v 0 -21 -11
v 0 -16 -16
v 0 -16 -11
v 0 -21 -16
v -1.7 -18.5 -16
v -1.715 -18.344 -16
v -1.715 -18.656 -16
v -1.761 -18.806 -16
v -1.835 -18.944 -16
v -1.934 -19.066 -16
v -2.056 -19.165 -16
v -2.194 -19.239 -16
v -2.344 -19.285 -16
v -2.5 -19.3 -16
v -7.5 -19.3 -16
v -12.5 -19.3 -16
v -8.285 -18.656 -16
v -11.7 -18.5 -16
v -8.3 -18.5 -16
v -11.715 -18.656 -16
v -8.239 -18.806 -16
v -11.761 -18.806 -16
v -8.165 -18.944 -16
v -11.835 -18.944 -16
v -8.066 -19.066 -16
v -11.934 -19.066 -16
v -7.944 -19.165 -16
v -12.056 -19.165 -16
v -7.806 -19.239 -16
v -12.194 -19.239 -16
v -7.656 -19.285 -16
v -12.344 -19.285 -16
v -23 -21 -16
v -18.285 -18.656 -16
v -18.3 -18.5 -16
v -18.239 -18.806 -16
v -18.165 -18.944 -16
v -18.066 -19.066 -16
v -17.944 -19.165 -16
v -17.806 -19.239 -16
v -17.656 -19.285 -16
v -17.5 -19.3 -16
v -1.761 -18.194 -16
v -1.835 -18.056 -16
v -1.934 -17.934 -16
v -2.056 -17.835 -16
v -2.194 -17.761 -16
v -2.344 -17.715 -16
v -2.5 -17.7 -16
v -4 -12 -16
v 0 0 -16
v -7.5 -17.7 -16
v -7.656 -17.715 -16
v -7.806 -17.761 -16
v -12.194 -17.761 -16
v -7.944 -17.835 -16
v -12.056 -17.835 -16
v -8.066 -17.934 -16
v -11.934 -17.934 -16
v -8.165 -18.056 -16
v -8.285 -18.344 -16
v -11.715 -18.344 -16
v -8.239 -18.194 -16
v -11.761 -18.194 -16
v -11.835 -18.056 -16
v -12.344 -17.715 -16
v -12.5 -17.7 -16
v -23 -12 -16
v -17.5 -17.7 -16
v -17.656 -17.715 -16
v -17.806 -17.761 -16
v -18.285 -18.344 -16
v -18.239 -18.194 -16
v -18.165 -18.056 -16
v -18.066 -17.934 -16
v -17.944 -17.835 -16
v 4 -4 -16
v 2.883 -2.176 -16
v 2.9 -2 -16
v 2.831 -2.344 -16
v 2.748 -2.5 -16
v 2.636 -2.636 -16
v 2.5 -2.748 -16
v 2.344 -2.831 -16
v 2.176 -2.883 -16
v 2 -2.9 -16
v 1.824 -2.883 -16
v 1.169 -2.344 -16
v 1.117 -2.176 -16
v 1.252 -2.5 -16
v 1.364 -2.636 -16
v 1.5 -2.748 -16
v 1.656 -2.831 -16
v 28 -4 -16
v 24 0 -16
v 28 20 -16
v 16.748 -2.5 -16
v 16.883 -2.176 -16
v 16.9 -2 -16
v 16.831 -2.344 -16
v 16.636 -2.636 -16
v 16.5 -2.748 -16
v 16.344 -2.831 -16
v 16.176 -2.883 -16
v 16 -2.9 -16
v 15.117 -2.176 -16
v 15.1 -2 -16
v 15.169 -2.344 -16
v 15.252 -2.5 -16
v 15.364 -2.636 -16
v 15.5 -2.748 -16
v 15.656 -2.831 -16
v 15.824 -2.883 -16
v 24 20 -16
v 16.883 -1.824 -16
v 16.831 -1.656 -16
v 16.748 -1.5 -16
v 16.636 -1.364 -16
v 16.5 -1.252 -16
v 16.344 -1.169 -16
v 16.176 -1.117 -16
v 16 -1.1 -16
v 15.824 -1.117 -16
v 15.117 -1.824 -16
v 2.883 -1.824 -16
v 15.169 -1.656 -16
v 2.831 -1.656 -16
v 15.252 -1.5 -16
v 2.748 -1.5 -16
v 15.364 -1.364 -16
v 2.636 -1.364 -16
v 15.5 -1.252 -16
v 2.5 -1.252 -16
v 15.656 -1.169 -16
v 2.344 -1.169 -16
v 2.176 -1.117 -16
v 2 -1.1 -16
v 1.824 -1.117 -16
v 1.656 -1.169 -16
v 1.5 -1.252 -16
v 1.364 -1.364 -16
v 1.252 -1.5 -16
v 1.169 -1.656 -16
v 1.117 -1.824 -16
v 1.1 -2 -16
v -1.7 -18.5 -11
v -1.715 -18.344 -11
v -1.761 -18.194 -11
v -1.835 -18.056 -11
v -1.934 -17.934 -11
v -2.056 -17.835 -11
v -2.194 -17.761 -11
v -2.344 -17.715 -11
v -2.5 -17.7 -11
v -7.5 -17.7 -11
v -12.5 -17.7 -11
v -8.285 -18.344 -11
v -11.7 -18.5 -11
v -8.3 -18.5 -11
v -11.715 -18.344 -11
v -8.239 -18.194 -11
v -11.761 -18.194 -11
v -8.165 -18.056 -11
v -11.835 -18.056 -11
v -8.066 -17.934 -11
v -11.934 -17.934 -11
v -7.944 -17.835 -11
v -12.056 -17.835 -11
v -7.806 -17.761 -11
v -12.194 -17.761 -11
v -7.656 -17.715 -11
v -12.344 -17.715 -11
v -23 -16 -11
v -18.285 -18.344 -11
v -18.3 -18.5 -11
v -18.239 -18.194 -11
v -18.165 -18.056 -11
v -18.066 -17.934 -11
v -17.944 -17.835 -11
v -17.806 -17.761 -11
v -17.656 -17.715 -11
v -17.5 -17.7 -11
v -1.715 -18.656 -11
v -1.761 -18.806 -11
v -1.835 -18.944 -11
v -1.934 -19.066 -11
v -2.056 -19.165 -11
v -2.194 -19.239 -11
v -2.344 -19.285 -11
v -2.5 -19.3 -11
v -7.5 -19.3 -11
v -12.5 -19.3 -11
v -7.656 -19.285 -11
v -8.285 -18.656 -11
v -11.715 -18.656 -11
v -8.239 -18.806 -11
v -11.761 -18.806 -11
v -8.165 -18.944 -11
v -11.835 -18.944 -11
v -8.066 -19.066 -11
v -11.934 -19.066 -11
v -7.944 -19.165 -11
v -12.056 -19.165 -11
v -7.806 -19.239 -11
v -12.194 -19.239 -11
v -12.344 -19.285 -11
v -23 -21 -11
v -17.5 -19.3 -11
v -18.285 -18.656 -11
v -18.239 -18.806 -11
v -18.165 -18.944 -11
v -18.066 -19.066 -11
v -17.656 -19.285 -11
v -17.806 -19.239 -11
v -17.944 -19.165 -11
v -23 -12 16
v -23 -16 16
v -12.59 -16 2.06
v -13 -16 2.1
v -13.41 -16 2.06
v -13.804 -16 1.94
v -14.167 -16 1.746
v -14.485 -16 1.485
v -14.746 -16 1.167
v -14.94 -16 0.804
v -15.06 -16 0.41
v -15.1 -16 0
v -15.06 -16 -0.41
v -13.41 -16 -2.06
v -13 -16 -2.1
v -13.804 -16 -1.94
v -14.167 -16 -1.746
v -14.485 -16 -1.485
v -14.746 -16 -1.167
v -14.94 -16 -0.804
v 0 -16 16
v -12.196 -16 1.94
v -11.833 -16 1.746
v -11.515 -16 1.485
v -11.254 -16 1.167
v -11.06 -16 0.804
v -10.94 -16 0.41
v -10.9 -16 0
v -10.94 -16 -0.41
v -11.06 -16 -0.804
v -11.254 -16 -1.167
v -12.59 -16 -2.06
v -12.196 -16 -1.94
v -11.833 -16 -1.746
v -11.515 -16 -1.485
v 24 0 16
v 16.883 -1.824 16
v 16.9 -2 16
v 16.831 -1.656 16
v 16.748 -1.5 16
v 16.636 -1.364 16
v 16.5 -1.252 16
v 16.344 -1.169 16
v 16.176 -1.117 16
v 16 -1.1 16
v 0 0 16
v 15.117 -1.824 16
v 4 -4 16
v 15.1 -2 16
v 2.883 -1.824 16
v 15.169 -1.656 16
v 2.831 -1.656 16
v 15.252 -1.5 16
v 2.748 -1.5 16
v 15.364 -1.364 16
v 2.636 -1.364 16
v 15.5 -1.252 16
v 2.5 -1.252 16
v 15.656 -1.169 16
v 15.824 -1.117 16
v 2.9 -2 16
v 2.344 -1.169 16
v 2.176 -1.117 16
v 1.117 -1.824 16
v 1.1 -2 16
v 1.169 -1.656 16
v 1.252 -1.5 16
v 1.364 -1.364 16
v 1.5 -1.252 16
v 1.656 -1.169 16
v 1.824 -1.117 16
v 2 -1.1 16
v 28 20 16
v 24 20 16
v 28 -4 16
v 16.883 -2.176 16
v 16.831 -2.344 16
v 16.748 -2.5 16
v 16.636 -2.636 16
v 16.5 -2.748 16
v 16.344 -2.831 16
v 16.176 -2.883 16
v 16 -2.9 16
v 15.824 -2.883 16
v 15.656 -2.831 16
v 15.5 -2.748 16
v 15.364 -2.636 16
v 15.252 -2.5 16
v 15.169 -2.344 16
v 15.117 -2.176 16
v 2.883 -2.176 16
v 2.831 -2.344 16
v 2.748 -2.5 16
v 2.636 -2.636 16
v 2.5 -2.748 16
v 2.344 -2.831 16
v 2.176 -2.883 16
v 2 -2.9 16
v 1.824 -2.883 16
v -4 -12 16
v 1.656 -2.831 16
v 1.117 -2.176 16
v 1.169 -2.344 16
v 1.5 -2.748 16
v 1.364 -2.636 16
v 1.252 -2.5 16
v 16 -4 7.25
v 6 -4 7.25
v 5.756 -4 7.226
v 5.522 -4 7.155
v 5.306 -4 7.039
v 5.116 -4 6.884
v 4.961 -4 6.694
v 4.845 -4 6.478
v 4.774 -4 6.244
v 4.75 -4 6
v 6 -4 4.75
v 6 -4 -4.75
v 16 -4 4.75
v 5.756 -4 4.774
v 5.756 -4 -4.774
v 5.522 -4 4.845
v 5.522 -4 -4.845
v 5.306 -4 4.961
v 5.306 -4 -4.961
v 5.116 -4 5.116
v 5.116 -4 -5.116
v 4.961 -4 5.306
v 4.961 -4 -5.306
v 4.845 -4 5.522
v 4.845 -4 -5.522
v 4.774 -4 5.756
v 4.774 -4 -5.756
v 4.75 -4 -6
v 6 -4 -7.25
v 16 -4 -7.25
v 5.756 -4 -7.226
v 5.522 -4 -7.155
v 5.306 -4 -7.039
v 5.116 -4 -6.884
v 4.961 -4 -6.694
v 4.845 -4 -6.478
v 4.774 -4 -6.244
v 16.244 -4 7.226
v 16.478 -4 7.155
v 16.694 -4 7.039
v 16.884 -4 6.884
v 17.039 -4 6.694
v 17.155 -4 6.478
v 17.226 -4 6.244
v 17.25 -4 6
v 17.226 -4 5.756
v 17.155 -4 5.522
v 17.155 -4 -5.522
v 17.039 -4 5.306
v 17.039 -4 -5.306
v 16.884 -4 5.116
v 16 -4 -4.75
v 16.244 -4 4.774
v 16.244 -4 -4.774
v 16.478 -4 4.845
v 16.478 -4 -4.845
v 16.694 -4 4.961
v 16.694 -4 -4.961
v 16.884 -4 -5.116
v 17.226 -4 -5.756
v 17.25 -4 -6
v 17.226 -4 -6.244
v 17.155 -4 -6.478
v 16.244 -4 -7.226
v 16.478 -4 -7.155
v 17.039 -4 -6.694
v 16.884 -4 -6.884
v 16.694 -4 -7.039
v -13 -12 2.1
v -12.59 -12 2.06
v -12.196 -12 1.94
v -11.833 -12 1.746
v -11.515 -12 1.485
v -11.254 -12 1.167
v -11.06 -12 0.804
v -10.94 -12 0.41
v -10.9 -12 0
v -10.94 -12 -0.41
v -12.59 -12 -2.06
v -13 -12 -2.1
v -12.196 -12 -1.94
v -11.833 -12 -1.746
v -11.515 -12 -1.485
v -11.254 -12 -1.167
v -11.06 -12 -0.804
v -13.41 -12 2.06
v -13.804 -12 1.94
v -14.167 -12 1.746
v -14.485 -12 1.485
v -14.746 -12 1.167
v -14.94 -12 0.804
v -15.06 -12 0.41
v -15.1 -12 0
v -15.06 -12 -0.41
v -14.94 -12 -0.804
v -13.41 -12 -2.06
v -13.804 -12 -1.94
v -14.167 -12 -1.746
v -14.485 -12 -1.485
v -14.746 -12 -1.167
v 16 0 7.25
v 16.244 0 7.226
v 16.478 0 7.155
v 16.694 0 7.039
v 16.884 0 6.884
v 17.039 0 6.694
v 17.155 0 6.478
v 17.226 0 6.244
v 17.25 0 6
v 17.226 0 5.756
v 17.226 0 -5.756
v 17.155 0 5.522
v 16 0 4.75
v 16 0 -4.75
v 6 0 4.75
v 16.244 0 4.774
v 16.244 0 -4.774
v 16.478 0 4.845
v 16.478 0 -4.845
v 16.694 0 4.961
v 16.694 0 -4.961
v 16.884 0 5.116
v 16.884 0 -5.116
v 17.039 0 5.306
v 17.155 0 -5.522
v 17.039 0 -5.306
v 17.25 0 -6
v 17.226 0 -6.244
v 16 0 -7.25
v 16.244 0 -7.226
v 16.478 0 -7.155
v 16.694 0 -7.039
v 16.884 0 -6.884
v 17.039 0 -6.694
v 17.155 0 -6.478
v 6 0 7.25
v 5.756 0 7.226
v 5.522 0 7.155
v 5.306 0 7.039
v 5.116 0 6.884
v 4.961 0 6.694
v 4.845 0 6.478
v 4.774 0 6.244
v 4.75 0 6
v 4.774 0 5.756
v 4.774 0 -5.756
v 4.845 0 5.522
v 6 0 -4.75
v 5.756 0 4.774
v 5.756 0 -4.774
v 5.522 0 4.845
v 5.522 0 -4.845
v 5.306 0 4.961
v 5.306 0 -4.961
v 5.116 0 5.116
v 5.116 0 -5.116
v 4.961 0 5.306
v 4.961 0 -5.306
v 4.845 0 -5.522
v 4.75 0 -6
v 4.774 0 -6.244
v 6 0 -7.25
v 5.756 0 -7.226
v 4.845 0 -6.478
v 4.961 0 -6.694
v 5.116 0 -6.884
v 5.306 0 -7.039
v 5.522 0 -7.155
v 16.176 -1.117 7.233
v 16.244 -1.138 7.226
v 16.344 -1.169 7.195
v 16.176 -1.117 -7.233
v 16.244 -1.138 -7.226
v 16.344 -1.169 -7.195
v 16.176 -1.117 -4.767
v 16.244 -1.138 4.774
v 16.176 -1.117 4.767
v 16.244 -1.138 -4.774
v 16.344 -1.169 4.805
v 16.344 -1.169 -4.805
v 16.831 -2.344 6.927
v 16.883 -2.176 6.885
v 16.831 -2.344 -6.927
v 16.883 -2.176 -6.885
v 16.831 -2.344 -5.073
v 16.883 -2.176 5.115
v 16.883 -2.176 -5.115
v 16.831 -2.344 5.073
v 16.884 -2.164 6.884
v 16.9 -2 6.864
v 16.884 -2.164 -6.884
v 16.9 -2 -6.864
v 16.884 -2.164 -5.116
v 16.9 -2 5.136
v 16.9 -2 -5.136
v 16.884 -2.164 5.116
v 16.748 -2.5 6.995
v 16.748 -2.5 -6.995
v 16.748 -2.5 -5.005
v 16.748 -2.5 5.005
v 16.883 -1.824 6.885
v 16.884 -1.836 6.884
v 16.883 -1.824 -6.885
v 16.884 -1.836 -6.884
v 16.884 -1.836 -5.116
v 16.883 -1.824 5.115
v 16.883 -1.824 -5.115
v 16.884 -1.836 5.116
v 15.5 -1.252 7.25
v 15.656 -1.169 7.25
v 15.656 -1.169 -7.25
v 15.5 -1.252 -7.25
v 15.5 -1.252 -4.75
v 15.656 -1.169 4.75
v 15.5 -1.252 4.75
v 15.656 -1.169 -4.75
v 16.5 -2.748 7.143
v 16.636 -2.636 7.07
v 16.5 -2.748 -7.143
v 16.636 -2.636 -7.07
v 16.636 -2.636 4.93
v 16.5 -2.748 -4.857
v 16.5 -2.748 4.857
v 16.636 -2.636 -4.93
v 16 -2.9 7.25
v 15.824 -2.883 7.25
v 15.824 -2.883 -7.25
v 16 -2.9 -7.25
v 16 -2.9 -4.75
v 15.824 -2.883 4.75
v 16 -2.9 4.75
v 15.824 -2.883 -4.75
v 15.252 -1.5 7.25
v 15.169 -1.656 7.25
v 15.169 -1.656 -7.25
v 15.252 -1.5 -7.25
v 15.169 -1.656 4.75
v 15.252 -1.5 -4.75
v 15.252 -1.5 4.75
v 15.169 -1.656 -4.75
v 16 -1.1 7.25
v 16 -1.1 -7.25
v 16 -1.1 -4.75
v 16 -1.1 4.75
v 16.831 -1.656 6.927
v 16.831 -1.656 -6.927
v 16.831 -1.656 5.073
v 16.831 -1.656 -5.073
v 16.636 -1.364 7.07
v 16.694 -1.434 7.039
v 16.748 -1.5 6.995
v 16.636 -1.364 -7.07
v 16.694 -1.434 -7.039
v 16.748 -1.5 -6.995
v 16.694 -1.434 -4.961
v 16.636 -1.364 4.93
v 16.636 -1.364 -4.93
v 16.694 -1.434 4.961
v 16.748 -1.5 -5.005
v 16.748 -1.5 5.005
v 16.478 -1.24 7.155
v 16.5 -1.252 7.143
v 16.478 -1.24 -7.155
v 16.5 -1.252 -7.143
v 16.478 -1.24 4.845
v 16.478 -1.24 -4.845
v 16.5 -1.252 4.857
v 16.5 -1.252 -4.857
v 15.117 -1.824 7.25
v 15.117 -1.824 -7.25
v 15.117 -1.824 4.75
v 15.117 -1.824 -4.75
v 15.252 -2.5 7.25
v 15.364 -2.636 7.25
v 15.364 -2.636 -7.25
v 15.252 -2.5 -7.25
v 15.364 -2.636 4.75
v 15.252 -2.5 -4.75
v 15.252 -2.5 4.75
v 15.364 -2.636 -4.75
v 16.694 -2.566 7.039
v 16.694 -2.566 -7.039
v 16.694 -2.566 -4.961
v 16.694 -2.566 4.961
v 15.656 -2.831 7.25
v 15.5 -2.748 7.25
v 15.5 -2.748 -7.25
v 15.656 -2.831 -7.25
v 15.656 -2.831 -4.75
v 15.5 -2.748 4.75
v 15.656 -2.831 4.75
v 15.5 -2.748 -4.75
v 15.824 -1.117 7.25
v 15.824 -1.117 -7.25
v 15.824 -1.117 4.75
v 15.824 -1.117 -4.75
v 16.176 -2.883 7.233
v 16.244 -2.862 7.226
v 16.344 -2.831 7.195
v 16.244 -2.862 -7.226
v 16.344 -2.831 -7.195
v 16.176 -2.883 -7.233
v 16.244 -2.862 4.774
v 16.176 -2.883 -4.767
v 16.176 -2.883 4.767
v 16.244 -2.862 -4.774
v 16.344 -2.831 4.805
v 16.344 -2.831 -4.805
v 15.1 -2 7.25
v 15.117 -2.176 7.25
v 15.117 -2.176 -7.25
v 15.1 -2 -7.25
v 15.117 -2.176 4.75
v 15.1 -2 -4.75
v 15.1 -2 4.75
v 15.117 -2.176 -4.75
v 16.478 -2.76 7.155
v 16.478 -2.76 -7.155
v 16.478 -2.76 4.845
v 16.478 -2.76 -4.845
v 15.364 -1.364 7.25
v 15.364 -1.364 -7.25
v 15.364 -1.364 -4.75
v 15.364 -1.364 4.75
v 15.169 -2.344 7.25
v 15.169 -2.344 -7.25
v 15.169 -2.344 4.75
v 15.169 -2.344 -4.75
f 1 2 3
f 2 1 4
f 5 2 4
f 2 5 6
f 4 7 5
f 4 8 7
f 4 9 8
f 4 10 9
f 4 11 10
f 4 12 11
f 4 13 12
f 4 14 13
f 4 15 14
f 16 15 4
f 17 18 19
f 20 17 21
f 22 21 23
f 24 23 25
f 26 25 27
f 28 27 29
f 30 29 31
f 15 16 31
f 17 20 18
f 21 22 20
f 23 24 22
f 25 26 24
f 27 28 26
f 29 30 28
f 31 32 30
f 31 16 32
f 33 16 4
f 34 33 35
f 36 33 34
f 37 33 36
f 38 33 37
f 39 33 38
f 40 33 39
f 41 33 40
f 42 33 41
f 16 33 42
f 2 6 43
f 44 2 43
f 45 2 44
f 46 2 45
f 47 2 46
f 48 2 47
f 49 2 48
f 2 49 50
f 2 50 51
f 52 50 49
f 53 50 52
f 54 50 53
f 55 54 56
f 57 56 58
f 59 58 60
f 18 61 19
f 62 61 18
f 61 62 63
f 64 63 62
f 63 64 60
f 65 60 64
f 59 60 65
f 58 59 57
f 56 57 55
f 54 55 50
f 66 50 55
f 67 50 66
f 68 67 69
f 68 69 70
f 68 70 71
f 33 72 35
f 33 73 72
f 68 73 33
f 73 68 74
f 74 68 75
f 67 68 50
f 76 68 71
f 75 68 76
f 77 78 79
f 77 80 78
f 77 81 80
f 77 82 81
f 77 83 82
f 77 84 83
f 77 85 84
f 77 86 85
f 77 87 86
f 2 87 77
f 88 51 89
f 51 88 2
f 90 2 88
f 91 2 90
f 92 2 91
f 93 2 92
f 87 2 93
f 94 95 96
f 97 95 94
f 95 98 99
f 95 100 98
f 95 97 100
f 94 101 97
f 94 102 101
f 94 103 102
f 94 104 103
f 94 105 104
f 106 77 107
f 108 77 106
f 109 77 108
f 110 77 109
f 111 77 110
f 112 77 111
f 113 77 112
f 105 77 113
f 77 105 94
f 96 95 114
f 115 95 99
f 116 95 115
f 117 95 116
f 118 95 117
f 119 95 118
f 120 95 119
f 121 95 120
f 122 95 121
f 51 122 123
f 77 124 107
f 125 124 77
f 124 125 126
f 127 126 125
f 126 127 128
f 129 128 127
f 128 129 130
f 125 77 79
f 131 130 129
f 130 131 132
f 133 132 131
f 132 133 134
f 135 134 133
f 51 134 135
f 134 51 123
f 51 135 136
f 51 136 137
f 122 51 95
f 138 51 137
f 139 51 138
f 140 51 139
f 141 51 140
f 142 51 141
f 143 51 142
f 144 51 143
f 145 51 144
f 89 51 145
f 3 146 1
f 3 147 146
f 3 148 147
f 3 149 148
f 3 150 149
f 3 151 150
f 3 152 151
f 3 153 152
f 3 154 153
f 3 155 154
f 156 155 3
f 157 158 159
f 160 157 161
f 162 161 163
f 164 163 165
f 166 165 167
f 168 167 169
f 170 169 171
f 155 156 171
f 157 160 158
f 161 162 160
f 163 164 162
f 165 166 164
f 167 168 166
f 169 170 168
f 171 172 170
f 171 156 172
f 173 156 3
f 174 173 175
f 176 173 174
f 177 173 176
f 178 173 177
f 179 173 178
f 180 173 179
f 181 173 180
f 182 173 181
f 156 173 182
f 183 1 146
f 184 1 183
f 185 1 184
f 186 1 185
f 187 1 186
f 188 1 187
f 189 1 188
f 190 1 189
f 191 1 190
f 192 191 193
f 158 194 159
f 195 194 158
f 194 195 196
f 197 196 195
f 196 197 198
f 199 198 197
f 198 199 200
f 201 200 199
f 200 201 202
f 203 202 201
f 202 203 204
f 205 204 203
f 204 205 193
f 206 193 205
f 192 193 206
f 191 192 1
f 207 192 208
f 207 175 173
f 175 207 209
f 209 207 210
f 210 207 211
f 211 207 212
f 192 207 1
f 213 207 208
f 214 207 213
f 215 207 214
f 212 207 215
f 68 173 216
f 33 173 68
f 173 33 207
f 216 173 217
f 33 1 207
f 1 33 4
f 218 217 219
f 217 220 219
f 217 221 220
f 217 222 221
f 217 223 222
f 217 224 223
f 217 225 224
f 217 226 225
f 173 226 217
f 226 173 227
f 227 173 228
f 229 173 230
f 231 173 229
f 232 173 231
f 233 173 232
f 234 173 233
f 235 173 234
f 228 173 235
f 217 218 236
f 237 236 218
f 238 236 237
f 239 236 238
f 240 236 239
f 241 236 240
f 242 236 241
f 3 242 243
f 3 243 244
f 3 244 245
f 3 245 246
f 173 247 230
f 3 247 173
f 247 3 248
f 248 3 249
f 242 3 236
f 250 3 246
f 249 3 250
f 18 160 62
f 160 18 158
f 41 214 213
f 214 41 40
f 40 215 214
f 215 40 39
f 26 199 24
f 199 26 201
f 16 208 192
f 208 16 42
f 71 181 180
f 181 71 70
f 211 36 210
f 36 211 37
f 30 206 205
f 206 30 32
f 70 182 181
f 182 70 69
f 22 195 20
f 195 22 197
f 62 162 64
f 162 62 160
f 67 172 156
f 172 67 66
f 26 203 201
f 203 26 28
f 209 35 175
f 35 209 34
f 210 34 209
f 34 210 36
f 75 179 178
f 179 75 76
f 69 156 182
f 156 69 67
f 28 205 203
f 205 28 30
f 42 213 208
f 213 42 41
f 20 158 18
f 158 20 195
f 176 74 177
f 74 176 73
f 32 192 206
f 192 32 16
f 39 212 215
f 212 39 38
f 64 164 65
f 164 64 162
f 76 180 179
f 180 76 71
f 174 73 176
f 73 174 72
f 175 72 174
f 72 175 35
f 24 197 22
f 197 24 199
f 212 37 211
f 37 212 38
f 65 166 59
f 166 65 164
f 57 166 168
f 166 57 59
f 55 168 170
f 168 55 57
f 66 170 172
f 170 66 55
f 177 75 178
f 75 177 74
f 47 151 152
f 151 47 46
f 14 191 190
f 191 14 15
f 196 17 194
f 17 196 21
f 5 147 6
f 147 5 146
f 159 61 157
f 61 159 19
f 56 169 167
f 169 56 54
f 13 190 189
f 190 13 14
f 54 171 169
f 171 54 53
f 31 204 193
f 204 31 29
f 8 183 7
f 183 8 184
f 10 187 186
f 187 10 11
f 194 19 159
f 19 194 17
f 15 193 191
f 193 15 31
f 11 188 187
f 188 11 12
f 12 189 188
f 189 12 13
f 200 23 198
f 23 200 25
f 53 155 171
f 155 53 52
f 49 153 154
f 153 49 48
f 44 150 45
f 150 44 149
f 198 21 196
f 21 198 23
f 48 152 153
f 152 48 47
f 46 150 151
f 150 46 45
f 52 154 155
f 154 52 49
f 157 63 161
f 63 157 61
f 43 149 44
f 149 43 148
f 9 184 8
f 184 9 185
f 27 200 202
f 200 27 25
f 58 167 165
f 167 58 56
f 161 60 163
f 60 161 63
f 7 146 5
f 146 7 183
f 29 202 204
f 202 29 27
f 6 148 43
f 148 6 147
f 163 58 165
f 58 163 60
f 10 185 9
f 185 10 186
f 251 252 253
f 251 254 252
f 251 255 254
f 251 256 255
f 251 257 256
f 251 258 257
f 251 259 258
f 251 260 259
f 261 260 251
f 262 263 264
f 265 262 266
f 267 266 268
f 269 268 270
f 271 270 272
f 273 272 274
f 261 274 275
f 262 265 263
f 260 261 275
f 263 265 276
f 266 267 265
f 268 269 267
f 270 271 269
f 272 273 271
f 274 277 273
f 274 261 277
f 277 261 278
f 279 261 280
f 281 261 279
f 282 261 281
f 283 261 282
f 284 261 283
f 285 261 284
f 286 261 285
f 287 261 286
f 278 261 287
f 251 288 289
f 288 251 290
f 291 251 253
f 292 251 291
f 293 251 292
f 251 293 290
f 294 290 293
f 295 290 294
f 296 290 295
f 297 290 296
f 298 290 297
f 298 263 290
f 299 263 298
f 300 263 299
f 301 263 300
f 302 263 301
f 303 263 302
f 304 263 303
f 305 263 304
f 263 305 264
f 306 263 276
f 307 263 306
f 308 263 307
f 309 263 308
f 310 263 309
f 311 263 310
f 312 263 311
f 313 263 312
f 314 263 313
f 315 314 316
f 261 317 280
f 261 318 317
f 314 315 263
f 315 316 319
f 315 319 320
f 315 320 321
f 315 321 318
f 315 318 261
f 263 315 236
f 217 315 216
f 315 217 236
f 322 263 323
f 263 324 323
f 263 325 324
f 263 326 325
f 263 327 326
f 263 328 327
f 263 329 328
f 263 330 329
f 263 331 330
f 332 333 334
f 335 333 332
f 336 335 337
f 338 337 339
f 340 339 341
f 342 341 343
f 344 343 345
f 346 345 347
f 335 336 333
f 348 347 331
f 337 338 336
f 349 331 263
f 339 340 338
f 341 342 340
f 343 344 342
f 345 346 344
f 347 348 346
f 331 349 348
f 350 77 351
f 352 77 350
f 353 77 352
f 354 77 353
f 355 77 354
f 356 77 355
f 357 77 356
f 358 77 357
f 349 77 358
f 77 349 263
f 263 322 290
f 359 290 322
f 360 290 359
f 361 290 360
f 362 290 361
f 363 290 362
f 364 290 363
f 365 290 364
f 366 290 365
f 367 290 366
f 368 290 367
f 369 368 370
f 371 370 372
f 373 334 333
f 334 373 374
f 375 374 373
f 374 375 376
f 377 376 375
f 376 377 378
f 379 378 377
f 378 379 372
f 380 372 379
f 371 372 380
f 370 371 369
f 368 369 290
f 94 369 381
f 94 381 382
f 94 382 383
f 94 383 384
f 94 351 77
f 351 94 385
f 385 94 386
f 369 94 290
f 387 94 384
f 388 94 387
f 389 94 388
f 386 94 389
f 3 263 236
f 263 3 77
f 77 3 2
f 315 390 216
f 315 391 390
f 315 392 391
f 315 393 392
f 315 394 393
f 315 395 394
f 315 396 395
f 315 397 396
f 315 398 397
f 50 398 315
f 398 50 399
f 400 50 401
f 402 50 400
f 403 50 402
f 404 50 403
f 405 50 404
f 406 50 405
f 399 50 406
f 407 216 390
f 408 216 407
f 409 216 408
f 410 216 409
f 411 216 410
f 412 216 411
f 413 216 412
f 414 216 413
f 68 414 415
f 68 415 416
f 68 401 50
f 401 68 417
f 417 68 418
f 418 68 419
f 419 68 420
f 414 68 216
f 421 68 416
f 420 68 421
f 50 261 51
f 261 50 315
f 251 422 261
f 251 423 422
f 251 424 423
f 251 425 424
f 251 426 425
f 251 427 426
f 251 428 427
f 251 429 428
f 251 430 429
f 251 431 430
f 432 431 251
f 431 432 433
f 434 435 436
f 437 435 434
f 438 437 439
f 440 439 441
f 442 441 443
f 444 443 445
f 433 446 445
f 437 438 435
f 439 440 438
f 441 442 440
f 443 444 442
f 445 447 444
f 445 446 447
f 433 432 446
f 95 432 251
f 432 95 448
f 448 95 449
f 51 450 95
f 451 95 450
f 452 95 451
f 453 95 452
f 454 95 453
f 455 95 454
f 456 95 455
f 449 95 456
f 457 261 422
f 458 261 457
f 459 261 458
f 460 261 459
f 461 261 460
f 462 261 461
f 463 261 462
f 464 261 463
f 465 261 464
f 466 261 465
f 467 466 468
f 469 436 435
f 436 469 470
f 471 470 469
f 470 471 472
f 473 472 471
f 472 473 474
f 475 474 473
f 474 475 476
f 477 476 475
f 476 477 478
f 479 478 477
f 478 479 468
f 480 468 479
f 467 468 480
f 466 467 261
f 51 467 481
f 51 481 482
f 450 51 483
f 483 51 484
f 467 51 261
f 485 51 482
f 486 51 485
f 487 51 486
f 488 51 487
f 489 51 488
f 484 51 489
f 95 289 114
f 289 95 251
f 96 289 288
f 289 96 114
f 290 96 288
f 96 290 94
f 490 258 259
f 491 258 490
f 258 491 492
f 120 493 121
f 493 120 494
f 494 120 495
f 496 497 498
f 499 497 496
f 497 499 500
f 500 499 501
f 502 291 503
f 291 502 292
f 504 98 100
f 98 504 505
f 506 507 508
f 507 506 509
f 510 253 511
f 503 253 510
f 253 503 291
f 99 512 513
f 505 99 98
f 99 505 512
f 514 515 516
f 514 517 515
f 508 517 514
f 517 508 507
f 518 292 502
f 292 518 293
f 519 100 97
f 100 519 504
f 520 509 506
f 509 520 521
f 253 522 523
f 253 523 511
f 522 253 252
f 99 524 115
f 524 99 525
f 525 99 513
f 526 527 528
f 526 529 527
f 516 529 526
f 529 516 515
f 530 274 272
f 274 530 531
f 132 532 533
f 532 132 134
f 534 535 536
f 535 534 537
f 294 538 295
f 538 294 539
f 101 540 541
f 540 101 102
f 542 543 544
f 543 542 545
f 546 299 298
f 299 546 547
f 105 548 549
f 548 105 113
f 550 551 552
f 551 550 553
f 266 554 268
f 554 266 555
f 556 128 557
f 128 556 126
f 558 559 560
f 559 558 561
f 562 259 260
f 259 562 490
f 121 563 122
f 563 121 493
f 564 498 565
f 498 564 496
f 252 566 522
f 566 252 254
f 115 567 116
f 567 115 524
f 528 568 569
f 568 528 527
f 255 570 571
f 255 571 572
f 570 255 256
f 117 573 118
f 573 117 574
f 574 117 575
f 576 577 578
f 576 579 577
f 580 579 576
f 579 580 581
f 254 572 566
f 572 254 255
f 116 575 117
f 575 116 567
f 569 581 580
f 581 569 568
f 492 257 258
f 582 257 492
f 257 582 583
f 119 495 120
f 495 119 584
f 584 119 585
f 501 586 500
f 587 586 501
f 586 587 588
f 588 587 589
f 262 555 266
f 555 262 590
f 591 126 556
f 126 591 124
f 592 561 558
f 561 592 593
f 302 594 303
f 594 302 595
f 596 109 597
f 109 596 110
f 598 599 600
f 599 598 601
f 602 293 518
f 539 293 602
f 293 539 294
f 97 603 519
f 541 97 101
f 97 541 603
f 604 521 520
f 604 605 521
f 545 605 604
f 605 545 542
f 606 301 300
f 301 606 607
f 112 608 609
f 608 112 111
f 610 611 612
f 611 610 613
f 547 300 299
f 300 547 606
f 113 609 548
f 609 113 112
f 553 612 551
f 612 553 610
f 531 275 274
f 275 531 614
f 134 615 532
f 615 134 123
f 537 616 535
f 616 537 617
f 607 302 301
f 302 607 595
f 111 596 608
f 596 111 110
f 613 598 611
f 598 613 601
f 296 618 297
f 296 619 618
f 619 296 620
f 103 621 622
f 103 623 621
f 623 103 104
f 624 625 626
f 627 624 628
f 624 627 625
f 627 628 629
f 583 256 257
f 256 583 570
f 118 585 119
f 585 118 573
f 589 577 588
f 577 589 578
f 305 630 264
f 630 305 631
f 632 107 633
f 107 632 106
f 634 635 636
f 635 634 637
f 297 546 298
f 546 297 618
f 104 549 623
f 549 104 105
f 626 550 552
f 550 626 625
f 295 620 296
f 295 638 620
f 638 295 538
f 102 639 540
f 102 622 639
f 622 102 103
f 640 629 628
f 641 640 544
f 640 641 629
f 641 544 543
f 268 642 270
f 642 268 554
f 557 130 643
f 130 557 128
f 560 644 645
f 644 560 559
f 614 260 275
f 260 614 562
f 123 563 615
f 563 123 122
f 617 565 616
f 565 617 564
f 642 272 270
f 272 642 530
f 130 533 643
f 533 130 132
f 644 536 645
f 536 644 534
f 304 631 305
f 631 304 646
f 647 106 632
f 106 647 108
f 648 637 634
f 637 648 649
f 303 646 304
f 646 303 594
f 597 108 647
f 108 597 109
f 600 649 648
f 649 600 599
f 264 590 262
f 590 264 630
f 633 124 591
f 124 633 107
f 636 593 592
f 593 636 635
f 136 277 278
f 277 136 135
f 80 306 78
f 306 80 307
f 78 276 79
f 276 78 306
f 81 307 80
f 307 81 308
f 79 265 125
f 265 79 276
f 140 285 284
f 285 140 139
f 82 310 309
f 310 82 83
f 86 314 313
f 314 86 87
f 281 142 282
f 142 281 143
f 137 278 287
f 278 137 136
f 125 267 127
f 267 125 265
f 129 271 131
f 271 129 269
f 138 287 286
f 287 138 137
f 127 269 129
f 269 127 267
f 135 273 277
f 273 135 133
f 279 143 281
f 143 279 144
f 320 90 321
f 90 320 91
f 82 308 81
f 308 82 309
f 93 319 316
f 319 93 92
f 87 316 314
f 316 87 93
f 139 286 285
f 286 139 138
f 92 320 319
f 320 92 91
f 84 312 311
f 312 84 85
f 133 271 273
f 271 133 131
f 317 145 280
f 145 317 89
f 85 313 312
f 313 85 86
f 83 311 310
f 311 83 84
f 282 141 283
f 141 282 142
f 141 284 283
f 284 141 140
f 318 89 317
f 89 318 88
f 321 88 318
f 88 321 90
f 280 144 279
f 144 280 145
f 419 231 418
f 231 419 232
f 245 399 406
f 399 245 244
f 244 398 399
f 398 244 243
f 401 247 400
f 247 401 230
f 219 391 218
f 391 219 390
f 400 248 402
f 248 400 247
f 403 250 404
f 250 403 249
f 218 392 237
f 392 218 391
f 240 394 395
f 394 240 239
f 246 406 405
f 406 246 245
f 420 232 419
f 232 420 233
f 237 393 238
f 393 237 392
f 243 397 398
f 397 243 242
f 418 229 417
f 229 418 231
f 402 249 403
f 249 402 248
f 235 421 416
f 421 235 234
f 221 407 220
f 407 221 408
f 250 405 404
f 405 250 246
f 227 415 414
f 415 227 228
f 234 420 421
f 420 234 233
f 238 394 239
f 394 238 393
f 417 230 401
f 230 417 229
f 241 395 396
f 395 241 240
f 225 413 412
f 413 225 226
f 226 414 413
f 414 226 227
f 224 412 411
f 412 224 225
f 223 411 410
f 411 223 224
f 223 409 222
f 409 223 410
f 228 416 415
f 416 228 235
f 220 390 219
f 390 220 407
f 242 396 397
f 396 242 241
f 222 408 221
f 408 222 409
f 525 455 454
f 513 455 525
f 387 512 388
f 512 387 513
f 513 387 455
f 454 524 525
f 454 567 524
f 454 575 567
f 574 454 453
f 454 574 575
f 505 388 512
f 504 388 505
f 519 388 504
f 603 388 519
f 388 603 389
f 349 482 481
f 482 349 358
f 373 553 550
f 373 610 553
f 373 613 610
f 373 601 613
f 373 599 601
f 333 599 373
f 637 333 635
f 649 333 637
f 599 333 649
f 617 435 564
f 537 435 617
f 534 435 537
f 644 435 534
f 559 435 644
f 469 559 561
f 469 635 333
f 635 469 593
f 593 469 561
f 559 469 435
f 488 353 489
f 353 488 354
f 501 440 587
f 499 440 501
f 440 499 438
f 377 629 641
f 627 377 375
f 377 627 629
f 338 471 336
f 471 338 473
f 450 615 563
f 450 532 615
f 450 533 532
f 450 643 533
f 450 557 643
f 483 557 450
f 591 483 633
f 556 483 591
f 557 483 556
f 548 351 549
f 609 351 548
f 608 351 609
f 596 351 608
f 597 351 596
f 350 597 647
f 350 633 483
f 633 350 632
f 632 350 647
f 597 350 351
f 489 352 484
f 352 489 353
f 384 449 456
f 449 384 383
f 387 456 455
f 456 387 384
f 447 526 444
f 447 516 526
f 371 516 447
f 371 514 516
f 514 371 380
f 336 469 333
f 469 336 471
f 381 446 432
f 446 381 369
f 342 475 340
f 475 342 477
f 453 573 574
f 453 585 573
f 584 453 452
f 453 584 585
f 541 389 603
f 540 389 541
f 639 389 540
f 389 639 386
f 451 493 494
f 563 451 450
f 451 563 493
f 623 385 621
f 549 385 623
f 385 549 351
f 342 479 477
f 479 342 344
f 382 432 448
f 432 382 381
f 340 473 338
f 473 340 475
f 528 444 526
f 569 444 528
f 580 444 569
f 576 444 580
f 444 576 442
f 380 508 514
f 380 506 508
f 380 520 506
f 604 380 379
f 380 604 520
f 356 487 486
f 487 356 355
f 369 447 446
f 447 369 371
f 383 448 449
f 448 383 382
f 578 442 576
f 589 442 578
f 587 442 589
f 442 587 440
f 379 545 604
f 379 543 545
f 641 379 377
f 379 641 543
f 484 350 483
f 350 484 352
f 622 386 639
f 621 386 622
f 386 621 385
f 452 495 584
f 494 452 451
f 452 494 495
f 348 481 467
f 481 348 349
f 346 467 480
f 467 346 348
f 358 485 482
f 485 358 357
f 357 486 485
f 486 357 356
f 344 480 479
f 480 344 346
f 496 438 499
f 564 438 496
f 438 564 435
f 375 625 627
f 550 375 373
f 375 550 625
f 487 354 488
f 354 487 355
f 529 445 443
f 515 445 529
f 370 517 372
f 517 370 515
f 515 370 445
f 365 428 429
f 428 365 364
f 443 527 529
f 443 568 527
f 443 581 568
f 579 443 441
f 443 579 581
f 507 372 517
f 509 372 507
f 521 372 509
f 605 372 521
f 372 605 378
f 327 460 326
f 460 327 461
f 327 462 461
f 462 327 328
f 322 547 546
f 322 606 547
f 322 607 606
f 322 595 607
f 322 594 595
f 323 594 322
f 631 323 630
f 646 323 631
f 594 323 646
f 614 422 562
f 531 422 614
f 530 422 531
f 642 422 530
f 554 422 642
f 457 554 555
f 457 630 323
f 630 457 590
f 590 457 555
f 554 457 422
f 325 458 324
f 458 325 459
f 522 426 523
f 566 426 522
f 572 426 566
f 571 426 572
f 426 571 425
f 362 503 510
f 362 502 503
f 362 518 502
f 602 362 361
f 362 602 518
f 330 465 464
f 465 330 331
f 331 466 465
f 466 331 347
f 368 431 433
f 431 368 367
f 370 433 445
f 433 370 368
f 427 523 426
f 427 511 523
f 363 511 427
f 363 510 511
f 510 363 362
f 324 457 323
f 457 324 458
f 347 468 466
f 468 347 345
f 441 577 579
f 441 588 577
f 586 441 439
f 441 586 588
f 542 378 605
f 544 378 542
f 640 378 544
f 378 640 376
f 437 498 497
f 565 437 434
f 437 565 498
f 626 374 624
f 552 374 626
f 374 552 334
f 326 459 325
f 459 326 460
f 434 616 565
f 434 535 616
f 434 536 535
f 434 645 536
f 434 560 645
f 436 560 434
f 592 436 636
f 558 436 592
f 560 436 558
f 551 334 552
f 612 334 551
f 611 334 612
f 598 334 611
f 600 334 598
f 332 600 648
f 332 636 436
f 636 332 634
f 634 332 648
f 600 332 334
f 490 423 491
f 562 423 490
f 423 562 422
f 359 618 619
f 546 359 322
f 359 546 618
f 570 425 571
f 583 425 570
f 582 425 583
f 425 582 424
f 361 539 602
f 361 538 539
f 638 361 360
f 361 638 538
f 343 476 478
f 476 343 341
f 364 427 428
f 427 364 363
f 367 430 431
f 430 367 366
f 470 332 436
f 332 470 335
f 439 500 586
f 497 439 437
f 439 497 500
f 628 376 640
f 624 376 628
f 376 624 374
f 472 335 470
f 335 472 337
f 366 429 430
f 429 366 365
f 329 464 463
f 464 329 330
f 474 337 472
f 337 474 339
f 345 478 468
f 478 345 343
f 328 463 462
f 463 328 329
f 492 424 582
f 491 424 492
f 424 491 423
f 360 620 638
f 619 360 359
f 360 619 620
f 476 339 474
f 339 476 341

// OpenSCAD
module ratf_solenoid() {
  $fn = 32;
  sw = 4;
  sh = 16;
  disp_u = 4;
  difference() {
    union() {
      linear_extrude(height = 32, center = true, convexity = 10, twist = 0)
      polygon(points = [[0, 0], 
                        [24, 0],
                        [24, -20],
                        [24 + sw, -20],
                        [24 + sw, sw],
                        [24, sw],
                        [sw, sw],
                        [sw - disp_u, sh],
                        [-19 - disp_u, sh],
                        [-19 - disp_u, sh - sw],
                        [-disp_u, sh - sw],
                        [0, 0]
                       ]);
      
      // Switch Support
      translate([-11.5, 18.5, 13.5])
      difference() {
        cube([23, 5, 5], center = true);  
        
        hull() {
          translate([-1, 0, 0])
          rotate([0, 0, 90])
          cylinder(d = 1.6, h = 10, center = true);

          translate([-6, 0, 0])
          rotate([0, 0, 90])
          cylinder(d = 1.6, h = 10, center = true);
        }

        hull() {
          translate([9, 0, 0])
          rotate([0, 0, 90])
          cylinder(d = 1.6, h = 10, center = true);

          translate([4, 0, 0])
          rotate([0, 0, 90])
          cylinder(d = 1.6, h = 10, center = true);
        }
      }
    }    
    
    // Hinge holes
    translate([24 - 8, sw/2, 0])
    #cylinder(d = 1.8, h = 200, center = true);     

    translate([24 - 8 - 14, sw/2, 0])
    #cylinder(d = 1.8, h = 200, center = true);     
    
    // center hole
    translate([-26/2, 0, 0])
    rotate([90, 0, 0])
    cylinder(d = 4.2, h = 200, center = true); 

    // body holes
    hull() {
      translate([6, 0, 12/2])
      rotate([90, 0, 0])
      cylinder(d = 2.5, h = 200, center = true); 

      translate([16, 0, 12/2])
      rotate([90, 0, 0])
      cylinder(d = 2.5, h = 200, center = true); 
    }

    hull() {
      translate([6, 0, -12/2])
      rotate([90, 0, 0])
      cylinder(d = 2.5, h = 200, center = true); 

      translate([16, 0, -12/2])
      rotate([90, 0, 0])
      cylinder(d = 2.5, h = 200, center = true); 
    }

  }
}

rotate([180, 0, 0])
ratf_solenoid();
